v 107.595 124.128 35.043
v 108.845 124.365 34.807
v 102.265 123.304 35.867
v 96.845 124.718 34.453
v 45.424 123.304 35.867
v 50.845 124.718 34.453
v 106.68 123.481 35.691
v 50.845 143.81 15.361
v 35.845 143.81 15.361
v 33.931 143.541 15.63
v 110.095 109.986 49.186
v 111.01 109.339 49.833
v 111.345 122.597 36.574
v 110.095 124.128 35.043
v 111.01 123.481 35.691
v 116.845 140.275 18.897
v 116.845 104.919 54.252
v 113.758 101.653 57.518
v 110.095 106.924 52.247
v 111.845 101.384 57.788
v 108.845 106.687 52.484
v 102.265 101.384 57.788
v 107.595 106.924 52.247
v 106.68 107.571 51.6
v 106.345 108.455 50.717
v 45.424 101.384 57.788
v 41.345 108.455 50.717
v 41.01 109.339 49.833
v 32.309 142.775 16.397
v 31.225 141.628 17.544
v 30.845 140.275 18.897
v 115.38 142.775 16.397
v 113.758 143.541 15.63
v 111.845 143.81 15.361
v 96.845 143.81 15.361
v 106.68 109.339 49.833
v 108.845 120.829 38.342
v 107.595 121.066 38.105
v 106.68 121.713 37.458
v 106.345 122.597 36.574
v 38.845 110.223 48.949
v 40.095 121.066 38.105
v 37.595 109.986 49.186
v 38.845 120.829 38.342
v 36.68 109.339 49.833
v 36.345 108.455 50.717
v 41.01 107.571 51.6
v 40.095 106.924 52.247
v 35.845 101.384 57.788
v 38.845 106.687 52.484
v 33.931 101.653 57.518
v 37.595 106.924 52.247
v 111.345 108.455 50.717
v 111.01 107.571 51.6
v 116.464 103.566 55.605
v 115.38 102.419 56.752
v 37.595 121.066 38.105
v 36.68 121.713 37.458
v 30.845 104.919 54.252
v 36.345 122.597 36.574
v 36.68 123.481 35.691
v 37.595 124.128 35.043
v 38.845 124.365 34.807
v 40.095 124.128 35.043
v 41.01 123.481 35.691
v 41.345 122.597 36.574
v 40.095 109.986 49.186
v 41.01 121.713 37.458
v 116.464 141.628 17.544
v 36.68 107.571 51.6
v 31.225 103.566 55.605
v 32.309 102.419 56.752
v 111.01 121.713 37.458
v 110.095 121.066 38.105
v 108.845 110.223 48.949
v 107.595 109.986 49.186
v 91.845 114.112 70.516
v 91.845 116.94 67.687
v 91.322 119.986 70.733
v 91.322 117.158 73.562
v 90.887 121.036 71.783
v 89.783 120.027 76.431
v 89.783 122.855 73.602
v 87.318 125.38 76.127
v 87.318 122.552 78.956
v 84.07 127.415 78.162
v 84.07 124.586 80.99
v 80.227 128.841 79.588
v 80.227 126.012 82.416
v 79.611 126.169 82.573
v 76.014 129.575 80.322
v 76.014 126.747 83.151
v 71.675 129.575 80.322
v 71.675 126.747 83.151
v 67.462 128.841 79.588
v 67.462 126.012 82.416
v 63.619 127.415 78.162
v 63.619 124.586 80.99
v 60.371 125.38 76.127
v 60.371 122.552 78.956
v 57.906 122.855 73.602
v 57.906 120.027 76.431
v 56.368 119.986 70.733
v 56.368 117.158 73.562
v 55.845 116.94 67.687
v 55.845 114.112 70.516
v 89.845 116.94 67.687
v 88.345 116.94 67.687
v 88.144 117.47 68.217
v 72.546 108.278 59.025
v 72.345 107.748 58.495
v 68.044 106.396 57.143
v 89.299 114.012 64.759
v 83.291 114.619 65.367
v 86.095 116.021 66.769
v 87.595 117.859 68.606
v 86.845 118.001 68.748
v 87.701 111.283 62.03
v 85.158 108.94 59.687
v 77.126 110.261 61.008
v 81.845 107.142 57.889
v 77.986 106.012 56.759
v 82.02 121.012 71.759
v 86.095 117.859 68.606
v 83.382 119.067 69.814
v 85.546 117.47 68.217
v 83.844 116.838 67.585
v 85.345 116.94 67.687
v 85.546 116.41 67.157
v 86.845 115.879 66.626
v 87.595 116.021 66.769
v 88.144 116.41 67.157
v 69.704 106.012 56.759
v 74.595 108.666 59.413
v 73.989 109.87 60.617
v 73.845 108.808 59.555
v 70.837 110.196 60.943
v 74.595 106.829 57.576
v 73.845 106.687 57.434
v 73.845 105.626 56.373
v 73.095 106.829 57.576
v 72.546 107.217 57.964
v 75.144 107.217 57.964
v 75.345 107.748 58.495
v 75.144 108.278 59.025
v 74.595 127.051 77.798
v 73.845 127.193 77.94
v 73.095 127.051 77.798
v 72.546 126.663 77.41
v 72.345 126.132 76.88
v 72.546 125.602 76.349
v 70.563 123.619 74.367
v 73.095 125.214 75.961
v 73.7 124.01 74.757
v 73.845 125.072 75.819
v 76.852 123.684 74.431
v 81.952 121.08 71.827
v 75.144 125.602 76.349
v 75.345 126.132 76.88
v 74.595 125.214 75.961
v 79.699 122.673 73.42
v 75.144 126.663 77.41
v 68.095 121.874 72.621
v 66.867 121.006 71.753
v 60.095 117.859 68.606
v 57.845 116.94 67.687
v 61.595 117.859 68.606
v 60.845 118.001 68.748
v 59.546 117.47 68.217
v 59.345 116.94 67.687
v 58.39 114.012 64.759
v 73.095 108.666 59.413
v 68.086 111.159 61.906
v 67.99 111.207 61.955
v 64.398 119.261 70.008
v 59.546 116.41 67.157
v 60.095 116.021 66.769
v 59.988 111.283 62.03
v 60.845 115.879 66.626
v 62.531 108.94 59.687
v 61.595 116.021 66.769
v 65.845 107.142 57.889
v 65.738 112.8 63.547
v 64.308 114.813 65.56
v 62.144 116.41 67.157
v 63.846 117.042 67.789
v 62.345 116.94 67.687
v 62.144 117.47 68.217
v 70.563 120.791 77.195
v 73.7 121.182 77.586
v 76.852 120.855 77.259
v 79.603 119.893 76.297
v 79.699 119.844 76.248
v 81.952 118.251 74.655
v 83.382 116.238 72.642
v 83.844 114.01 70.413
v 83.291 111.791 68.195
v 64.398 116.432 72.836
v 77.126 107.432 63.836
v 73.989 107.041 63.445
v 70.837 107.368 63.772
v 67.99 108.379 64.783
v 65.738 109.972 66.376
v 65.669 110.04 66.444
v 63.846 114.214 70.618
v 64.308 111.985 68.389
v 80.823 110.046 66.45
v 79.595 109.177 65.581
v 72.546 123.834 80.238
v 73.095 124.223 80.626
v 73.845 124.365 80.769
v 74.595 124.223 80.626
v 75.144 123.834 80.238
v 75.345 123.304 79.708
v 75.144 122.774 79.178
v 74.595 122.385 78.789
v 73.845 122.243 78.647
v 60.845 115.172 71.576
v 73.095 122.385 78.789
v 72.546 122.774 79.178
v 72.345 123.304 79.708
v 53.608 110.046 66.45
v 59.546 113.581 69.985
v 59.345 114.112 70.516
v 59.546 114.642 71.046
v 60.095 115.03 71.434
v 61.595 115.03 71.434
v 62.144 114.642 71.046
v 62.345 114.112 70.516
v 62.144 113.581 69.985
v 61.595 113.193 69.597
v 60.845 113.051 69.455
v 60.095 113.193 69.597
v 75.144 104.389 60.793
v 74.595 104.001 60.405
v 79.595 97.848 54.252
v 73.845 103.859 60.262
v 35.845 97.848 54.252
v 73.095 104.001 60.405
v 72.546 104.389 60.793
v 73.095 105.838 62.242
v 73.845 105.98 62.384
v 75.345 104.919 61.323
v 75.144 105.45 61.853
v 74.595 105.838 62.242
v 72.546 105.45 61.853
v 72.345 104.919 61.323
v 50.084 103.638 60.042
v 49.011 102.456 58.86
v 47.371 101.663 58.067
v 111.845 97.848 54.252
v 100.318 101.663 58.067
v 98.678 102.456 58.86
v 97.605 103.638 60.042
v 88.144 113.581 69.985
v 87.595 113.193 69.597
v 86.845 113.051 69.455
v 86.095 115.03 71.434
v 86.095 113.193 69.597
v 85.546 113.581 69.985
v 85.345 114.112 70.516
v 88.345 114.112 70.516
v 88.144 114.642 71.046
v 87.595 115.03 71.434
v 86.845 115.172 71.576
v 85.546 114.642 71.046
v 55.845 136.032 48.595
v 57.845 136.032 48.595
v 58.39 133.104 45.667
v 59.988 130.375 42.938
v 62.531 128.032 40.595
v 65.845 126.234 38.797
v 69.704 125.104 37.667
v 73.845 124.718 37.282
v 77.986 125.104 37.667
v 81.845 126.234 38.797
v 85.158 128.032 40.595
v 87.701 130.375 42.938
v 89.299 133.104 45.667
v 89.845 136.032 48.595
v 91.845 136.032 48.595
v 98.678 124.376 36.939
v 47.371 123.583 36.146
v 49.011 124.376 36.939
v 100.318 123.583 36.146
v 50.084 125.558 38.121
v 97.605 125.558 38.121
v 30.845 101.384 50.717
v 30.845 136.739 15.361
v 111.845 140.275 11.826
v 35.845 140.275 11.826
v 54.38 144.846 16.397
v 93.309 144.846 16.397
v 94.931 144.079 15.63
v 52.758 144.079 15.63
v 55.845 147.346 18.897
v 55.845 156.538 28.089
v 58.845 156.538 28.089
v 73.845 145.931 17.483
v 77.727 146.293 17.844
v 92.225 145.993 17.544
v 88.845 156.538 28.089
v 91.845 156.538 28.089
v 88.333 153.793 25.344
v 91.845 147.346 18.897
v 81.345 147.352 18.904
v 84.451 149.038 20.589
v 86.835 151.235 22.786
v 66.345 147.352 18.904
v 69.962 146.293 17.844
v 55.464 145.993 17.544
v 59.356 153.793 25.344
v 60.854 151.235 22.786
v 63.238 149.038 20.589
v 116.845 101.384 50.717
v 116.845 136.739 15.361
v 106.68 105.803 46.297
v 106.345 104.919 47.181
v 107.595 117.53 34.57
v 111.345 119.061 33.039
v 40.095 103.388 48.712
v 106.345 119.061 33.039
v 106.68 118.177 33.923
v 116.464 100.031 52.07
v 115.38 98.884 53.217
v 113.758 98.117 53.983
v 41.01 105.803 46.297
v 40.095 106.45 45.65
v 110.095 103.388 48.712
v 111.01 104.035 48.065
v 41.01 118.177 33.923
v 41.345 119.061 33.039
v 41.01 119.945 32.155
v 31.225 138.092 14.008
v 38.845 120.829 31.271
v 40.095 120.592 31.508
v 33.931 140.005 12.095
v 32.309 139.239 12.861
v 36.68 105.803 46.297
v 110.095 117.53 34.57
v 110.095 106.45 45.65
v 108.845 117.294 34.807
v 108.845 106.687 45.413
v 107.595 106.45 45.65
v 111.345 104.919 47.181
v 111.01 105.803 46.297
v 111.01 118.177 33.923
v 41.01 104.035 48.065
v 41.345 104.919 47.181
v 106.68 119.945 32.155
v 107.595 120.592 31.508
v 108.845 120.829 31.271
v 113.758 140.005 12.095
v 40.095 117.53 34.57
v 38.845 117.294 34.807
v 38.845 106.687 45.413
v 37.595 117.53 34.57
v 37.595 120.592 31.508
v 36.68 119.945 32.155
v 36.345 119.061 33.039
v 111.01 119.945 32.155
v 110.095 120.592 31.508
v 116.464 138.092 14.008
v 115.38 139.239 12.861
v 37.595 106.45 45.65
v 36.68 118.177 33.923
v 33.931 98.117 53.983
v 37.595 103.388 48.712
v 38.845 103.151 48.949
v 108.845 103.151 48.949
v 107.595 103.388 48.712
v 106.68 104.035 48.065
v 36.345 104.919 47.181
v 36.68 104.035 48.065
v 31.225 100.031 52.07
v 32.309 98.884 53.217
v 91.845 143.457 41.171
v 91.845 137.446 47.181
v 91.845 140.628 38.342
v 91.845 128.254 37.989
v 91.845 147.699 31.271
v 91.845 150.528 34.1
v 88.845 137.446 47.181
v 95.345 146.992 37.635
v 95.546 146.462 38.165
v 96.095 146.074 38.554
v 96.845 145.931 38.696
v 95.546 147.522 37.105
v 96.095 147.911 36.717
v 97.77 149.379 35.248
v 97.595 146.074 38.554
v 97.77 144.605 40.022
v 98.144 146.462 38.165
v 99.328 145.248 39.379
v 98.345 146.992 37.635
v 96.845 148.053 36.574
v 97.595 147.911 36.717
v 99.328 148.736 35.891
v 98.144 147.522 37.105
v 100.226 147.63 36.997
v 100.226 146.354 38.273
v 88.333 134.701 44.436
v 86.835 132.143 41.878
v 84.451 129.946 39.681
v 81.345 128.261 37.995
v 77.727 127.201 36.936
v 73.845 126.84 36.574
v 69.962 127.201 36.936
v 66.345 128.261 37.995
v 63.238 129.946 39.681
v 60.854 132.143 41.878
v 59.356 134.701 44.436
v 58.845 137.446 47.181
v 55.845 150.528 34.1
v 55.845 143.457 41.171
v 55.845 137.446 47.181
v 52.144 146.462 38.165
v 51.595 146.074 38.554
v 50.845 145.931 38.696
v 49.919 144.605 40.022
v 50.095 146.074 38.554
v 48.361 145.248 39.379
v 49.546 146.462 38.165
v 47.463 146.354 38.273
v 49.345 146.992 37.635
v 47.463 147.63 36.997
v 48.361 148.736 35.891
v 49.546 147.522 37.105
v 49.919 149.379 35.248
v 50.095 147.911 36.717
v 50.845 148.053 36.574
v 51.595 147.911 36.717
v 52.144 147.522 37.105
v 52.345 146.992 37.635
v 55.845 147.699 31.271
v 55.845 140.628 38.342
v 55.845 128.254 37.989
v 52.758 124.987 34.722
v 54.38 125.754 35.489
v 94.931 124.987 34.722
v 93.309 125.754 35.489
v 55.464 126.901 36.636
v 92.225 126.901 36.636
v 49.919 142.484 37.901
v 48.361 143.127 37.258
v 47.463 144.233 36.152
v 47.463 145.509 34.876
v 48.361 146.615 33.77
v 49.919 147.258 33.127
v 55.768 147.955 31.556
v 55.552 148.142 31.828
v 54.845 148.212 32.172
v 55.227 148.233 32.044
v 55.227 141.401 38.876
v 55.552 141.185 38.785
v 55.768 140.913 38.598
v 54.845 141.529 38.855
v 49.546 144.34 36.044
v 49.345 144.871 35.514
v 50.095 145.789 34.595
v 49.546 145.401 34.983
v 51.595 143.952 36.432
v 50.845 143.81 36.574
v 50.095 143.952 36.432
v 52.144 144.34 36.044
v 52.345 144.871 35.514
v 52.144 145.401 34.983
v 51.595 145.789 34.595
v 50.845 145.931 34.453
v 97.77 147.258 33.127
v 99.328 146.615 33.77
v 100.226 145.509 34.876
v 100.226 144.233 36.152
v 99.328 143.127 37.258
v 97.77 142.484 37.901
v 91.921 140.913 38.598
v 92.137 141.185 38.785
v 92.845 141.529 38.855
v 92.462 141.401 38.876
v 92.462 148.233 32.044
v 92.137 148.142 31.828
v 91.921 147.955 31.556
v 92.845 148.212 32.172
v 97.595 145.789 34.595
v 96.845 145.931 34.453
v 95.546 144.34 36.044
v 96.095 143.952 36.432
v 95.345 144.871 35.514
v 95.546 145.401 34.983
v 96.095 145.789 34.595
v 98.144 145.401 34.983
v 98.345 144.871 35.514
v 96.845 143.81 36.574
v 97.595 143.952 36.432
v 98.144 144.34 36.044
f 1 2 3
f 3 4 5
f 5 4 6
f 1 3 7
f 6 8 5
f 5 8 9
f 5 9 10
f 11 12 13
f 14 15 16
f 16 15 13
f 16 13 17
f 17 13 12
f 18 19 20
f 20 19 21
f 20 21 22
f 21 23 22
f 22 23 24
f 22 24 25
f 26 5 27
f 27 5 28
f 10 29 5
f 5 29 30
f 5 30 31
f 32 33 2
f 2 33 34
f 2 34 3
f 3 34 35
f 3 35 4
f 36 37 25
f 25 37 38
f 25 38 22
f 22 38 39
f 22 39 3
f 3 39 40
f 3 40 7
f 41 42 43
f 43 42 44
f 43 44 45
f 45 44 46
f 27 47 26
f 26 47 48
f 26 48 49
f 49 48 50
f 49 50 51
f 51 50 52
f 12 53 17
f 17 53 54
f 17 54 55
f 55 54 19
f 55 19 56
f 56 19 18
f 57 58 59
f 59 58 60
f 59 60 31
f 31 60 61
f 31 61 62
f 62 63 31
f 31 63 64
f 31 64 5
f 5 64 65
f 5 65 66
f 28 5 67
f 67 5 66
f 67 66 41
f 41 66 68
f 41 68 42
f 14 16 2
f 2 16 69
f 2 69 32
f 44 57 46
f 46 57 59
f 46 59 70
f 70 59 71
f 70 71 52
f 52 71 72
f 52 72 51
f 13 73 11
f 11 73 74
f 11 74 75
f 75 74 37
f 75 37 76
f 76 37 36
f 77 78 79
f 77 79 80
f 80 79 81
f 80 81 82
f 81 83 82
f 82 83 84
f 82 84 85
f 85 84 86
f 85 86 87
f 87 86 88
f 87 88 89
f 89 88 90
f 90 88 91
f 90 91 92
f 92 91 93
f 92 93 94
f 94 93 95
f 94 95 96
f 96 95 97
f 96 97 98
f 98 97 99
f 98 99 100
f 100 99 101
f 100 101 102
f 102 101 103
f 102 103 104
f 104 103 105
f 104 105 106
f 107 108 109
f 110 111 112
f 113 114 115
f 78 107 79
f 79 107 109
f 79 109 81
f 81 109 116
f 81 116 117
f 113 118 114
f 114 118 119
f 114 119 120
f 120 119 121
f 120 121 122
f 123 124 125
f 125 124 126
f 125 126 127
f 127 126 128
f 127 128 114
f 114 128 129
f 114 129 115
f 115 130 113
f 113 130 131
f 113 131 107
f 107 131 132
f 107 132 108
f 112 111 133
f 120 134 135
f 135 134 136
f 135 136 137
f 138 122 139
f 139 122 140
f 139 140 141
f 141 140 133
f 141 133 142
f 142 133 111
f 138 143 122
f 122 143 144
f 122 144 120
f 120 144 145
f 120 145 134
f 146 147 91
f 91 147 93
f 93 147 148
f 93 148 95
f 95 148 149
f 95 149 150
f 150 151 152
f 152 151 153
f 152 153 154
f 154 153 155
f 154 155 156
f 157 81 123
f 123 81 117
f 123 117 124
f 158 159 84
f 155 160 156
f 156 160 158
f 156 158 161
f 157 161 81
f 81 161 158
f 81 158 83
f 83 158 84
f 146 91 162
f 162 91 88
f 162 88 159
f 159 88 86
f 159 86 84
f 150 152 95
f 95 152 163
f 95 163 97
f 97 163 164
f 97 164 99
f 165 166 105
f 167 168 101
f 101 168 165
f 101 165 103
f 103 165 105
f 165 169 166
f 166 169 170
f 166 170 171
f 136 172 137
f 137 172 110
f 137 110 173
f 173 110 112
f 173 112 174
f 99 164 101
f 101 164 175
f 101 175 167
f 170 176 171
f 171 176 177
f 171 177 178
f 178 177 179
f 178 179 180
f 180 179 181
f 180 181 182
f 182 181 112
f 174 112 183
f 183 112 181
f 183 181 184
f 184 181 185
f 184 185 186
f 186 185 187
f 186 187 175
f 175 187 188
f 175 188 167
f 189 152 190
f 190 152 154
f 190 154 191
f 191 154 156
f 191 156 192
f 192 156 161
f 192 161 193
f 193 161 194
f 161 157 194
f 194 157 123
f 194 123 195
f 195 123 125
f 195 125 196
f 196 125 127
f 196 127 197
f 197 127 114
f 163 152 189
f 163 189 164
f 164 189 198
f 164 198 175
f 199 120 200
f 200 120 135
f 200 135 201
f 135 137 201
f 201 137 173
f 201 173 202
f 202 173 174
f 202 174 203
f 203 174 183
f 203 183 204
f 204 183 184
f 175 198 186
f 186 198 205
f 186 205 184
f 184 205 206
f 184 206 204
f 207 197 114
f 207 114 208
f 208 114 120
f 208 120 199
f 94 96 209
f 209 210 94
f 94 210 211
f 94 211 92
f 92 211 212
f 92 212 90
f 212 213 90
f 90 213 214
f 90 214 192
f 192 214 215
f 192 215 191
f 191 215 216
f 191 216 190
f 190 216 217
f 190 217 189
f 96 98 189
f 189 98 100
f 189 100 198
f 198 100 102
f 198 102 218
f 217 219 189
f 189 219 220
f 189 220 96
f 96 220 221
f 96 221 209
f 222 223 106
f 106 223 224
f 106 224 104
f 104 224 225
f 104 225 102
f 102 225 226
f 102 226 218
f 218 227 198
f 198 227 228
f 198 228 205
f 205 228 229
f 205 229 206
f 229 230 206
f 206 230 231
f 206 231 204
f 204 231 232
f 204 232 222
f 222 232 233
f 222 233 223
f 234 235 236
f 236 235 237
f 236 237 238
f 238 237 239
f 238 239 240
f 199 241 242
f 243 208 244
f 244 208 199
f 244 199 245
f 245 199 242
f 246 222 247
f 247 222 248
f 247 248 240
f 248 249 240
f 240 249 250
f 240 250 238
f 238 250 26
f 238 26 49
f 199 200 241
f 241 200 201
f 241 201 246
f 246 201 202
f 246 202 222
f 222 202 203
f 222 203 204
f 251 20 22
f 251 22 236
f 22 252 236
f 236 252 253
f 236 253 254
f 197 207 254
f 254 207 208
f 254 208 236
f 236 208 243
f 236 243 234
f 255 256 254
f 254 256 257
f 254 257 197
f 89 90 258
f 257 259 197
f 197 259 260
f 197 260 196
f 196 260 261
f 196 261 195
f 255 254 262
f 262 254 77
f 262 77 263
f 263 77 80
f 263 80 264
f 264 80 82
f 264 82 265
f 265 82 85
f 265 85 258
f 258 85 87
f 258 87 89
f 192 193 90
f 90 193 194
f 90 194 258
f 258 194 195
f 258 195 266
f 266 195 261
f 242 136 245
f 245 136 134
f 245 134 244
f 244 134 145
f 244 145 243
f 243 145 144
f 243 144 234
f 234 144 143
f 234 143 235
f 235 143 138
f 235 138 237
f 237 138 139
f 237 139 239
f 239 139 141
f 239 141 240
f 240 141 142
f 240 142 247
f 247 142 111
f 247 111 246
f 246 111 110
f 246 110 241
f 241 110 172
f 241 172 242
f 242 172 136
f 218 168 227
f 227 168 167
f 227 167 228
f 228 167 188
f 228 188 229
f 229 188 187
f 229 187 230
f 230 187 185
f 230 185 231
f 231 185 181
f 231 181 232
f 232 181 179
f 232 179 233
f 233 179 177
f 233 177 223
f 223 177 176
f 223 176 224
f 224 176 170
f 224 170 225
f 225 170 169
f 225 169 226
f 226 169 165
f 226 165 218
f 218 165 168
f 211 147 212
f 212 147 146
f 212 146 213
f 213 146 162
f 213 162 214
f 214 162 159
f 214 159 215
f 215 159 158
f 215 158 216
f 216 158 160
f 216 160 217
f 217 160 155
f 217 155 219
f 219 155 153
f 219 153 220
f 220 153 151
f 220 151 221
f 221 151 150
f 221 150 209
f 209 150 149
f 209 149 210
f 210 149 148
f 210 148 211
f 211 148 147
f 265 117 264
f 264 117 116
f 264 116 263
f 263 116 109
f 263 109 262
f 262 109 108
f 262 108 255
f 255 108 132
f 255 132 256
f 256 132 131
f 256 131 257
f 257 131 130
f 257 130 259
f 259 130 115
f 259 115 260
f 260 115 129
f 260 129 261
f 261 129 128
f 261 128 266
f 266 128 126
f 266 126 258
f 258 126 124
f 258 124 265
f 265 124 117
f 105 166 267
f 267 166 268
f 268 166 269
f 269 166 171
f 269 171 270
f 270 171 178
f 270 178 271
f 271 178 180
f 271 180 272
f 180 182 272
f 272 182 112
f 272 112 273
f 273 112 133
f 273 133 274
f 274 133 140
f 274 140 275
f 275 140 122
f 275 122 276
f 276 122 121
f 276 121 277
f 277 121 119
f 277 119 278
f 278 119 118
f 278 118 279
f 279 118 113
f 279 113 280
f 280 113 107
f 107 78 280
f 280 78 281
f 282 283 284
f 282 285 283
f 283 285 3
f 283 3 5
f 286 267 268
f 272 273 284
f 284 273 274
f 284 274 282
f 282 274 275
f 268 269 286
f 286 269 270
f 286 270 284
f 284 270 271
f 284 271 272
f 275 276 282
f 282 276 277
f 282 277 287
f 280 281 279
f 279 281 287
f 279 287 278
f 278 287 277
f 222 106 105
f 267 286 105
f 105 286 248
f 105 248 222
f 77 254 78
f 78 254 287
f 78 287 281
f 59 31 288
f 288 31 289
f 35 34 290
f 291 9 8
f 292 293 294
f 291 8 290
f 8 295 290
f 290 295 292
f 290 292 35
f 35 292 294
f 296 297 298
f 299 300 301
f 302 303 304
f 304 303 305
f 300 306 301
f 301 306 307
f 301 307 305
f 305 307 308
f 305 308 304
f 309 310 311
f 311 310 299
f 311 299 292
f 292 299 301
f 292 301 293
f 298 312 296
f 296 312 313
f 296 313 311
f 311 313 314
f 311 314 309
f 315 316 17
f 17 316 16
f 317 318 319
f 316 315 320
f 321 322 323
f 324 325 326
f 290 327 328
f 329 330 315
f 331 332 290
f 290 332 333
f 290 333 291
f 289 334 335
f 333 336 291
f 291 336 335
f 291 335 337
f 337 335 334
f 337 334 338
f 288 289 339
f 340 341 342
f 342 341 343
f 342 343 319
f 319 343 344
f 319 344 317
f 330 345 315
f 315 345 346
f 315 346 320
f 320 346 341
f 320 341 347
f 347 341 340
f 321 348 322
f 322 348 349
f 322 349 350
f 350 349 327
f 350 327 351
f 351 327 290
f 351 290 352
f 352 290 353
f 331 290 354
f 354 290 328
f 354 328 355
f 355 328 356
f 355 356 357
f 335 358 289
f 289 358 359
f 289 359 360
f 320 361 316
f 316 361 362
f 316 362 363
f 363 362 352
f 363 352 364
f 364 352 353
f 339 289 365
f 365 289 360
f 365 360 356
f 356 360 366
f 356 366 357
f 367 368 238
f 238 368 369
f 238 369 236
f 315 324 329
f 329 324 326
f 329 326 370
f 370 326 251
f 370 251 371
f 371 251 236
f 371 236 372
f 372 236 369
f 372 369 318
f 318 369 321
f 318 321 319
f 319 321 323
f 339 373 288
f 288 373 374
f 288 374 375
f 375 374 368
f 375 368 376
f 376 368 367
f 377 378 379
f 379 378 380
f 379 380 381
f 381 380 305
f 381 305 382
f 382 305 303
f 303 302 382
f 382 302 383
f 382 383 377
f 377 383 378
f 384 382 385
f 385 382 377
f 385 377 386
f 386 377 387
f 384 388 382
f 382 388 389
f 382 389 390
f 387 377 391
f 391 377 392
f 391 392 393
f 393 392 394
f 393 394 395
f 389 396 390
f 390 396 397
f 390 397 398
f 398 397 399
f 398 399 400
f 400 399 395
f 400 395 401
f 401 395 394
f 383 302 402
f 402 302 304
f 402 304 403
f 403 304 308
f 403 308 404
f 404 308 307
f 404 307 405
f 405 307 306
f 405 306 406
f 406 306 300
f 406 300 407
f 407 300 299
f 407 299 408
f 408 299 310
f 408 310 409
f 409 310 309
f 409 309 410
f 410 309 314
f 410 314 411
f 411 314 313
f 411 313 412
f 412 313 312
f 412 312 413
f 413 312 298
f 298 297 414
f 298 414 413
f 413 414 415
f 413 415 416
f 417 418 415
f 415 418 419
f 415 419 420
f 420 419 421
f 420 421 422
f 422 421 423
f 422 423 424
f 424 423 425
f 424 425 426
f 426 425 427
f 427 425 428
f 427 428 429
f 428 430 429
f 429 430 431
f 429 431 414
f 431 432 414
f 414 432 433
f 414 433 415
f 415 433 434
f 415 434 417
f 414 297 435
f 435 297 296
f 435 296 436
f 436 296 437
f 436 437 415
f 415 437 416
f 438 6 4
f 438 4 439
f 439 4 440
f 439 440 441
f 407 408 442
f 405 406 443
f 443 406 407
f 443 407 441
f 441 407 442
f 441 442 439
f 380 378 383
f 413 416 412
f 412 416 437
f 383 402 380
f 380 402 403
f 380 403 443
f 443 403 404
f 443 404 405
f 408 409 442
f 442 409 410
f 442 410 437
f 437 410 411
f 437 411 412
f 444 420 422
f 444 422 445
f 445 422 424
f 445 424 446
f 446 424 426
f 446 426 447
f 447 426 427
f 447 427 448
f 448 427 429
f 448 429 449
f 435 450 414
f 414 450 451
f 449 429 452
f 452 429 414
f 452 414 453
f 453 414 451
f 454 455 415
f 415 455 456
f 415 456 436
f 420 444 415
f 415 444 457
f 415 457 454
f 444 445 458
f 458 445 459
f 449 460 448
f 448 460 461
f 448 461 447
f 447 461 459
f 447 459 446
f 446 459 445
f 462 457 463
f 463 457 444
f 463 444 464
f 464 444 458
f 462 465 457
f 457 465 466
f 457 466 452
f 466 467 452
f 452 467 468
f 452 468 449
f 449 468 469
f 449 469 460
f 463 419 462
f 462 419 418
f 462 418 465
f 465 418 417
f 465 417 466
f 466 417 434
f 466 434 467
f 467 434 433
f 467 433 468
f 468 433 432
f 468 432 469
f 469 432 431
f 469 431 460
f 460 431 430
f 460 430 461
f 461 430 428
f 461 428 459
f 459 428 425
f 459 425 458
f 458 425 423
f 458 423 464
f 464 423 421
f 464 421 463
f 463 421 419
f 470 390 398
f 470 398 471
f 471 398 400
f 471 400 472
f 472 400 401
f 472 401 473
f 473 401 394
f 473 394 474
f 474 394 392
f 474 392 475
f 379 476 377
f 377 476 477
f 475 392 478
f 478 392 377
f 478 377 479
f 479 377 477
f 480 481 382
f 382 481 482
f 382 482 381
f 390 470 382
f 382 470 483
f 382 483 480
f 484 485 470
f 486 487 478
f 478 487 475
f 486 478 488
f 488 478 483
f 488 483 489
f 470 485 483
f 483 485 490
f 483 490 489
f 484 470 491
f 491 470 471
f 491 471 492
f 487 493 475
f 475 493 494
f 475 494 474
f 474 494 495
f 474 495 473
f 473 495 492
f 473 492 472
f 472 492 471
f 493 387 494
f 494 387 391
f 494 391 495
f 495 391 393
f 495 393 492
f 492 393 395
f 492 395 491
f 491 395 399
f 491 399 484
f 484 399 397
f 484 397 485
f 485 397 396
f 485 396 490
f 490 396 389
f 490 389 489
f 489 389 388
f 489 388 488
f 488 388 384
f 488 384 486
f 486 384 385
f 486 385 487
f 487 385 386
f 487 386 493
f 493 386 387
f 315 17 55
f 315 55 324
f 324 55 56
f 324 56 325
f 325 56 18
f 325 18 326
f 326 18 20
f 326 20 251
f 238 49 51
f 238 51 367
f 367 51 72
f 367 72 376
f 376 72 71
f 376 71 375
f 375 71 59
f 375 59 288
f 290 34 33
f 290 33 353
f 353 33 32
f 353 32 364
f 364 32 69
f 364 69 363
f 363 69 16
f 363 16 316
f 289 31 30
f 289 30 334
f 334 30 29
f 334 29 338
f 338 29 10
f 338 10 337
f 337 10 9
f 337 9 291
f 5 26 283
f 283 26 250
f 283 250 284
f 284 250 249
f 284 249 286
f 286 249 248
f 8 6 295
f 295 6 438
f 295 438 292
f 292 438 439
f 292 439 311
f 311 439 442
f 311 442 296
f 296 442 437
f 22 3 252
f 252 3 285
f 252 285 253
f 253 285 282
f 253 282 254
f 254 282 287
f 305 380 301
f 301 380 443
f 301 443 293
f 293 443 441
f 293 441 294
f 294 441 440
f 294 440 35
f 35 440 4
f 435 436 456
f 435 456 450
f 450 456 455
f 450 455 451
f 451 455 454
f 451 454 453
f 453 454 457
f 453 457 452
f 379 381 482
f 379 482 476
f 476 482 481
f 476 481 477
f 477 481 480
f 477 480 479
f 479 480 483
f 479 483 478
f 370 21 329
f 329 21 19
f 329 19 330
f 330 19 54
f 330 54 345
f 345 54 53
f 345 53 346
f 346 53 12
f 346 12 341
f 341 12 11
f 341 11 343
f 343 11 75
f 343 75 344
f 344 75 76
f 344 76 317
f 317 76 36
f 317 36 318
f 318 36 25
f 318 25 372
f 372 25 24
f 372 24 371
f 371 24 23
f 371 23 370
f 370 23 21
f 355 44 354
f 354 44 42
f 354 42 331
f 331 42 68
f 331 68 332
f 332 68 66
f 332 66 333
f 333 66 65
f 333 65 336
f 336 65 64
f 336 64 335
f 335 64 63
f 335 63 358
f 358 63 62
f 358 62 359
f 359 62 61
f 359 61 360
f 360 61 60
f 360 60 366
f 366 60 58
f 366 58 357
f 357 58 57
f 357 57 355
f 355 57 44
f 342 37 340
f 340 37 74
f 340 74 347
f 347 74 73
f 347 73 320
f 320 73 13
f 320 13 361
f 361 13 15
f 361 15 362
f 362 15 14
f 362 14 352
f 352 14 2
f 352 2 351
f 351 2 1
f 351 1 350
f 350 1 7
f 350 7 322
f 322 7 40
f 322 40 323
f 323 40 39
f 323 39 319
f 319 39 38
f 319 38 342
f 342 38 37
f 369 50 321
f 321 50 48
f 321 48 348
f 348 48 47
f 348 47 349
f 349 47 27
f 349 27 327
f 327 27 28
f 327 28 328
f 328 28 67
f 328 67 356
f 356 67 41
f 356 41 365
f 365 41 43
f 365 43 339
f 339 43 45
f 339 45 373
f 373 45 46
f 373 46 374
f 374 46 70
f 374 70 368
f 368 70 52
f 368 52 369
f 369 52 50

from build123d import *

# Parameters (mm, degrees)
SKETCH1_R           = 18
BOSS_EXTRUDE1_DEPTH = 4
CUT_EXTRUDE1_REACH  = 178.366
SKETCH2_R           = 1.5
BOSS_EXTRUDE2_START = 27
BOSS_EXTRUDE2_DEPTH = 27
SKETCH4_W           = 86
SKETCH4_H           = 60
BOSS_EXTRUDE5_DEPTH = 5
BOSS_EXTRUDE6_START = -31
BOSS_EXTRUDE6_DEPTH = 31
BOSS_EXTRUDE7_DEPTH = 27
SKETCH9_R           = 1.5
BOSS_EXTRUDE8_DEPTH = 3
FILLET2_R           = 5
FILLET3_R           = 1
CUT_EXTRUDE2_REACH  = 157.453
SKETCH10_R          = 2.5


with BuildPart() as part:
    # Sketch1 → Boss-Extrude1 (new body)
    with BuildSketch(Plane(origin=(0, 24.62645802, -24.62645802), x_dir=(1, 0, 0), z_dir=(2.4702462297909737e-15, -0.70710678118655, 0.707106781186545))):
        with Locations(Location((73.844609768, 130.551114539, 0), (0, 0, 90))):
            Circle(SKETCH1_R)
        with BuildLine():
            Line((83.2907778, 127.269360509), (77.126363797, 121.104946506))
            ThreePointArc((77.126363797, 121.104946506), (66.773541956, 123.480046727), (64.398441736, 133.832868568))
            Line((64.398441736, 133.832868568), (70.562855738, 139.997282571))
            ThreePointArc((70.562855738, 139.997282571), (80.91567758, 137.62218235), (83.2907778, 127.269360509))
        make_face(mode=Mode.SUBTRACT)
    extrude(amount=BOSS_EXTRUDE1_DEPTH)

    # Sketch2 → Cut-Extrude1 (cut, up to next)
    with BuildSketch(Plane(origin=(0, 24.62645802, -24.62645802), x_dir=(1, 0, 0), z_dir=(-2.4702462297909737e-15, 0.70710678118655, -0.707106781186545)), mode=Mode.PRIVATE) as cut_extrude1_sk1:
        with Locations(Location((86.844609768, -130.551114539, 0), (0, 0, 270))):
            Circle(SKETCH2_R)
    cut_extrude1_tool1 = extrude(cut_extrude1_sk1.sketch, amount=-CUT_EXTRUDE1_REACH, mode=Mode.PRIVATE) & part.part
    # Sketch2 → Cut-Extrude1 (cut, up to next)
    with BuildSketch(Plane(origin=(0, 24.62645802, -24.62645802), x_dir=(1, 0, 0), z_dir=(-2.4702462297909737e-15, 0.70710678118655, -0.707106781186545)), mode=Mode.PRIVATE) as cut_extrude1_sk2:
        with Locations(Location((73.844609768, -143.551114539, 0), (0, 0, 270))):
            Circle(SKETCH2_R)
    cut_extrude1_tool2 = extrude(cut_extrude1_sk2.sketch, amount=-CUT_EXTRUDE1_REACH, mode=Mode.PRIVATE) & part.part
    # Sketch2 → Cut-Extrude1 (cut, up to next)
    with BuildSketch(Plane(origin=(0, 24.62645802, -24.62645802), x_dir=(1, 0, 0), z_dir=(-2.4702462297909737e-15, 0.70710678118655, -0.707106781186545)), mode=Mode.PRIVATE) as cut_extrude1_sk3:
        with Locations(Location((60.844609768, -130.551114539, 0), (0, 0, 270))):
            Circle(SKETCH2_R)
    cut_extrude1_tool3 = extrude(cut_extrude1_sk3.sketch, amount=-CUT_EXTRUDE1_REACH, mode=Mode.PRIVATE) & part.part
    # Sketch2 → Cut-Extrude1 (cut, up to next)
    with BuildSketch(Plane(origin=(0, 24.62645802, -24.62645802), x_dir=(1, 0, 0), z_dir=(-2.4702462297909737e-15, 0.70710678118655, -0.707106781186545)), mode=Mode.PRIVATE) as cut_extrude1_sk4:
        with Locations(Location((73.844609768, -117.551114539, 0), (0, 0, 270))):
            Circle(SKETCH2_R)
    cut_extrude1_tool4 = extrude(cut_extrude1_sk4.sketch, amount=-CUT_EXTRUDE1_REACH, mode=Mode.PRIVATE) & part.part
    add(cut_extrude1_tool1.solids().sort_by_distance((86.84461, 116.940036, 67.68712))[0], mode=Mode.SUBTRACT)
    add(cut_extrude1_tool2.solids().sort_by_distance((73.84461, 126.132425, 76.879509))[0], mode=Mode.SUBTRACT)
    add(cut_extrude1_tool3.solids().sort_by_distance((60.84461, 116.940036, 67.68712))[0], mode=Mode.SUBTRACT)
    add(cut_extrude1_tool4.solids().sort_by_distance((73.84461, 107.747648, 58.494732))[0], mode=Mode.SUBTRACT)

    # Sketch3 → Boss-Extrude2 (add)
    with BuildSketch(Plane(origin=(0, 24.62645802, -24.62645802), x_dir=(1, 0, 0), z_dir=(-2.4702462297909737e-15, 0.70710678118655, -0.707106781186545)).offset(BOSS_EXTRUDE2_START)):
        with BuildLine():
            Line((91.844609768, -130.551114539), (89.844609768, -130.551114539))
            ThreePointArc((89.844609768, -130.551114539), (73.844609768, -114.551114539), (57.844609768, -130.551114539))
            Line((57.844609768, -130.551114539), (55.844609768, -130.551114539))
            ThreePointArc((55.844609768, -130.551114539), (73.844609768, -112.551114539), (91.844609768, -130.551114539))
        make_face()
    extrude(amount=-BOSS_EXTRUDE2_DEPTH)



with BuildPart() as body_2:
    # Sketch4 → Boss-Extrude5 (new body)
    with BuildSketch(Plane(origin=(0, 79.58565632, 79.58565632), x_dir=(-1, 0, 0), z_dir=(0, -0.7071067811865451, -0.70710678118655))):
        with Locations((-73.844609768, 60.827070924)):
            Rectangle(SKETCH4_W, SKETCH4_H)
    extrude(amount=BOSS_EXTRUDE5_DEPTH)


with BuildPart() as part_1:
    add(part.part)

    add(body_2.part)  # Boss-Extrude6 merges body 2
    # Sketch6 → Boss-Extrude6 (add)
    with BuildSketch(Plane(origin=(0, 21.798030895, -21.798030895), x_dir=(1, 0, 0), z_dir=(2.4702462297909737e-15, -0.70710678118655, 0.707106781186545)).offset(BOSS_EXTRUDE6_START)):
        with BuildLine():
            ThreePointArc((73.844609768, 112.551114539), (61.116687706, 117.823192477), (55.844609768, 130.551114539))
            Line((55.844609768, 130.551114539), (48.844609768, 112.551114539))
            Line((48.844609768, 112.551114539), (73.844609768, 112.551114539))
        make_face()
        with BuildLine():
            Line((57.844609768, 130.551114539), (55.844609768, 130.551114539))
            ThreePointArc((55.844609768, 130.551114539), (61.116687706, 117.823192477), (73.844609768, 112.551114539))
            ThreePointArc((73.844609768, 112.551114539), (86.572531829, 117.823192477), (91.844609768, 130.551114539))
            Line((91.844609768, 130.551114539), (89.844609768, 130.551114539))
            ThreePointArc((89.844609768, 130.551114539), (73.844609768, 114.551114539), (57.844609768, 130.551114539))
        make_face()
        with BuildLine():
            ThreePointArc((91.844609768, 130.551114539), (86.572531829, 117.823192477), (73.844609768, 112.551114539))
            Line((73.844609768, 112.551114539), (98.844609768, 112.551114539))
            Line((98.844609768, 112.551114539), (91.844609768, 130.551114539))
        make_face()
    extrude(amount=BOSS_EXTRUDE6_DEPTH)

    # Sketch8 → Boss-Extrude7 (add)
    with BuildSketch(Plane(origin=(0, 64.224437766, -64.224437766), x_dir=(1, 0, 0), z_dir=(0, 0.7071067811865498, -0.7071067811865452))):
        with BuildLine():
            Line((91.844609768, -130.551114539), (88.844609768, -130.551114539))
            ThreePointArc((88.844609768, -130.551114539), (73.844609768, -115.551114539), (58.844609768, -130.551114539))
            Line((58.844609768, -130.551114539), (55.844609768, -130.551114539))
            Line((55.844609768, -130.551114539), (55.844609768, -112.551114539))
            Line((55.844609768, -112.551114539), (91.844609768, -112.551114539))
            Line((91.844609768, -112.551114539), (91.844609768, -130.551114539))
        make_face()
    extrude(amount=-BOSS_EXTRUDE7_DEPTH)

    # Sketch9 → Boss-Extrude8 (add)
    # profile 1 of 2: a face of its own
    with BuildSketch(Plane(origin=(0, 92.313578382, 92.313578382), x_dir=(1, 0, 0), z_dir=(-6.542051911181989e-15, 0.7071067811865454, 0.7071067811865497))):
        with BuildLine():
            Line((55.844609768, 72.327070924), (49.919173765, 73.951634922))
            ThreePointArc((49.919173765, 73.951634922), (47.344609768, 77.327070924), (49.919173765, 80.702506927))
            Line((49.919173765, 80.702506927), (55.844609768, 82.327070924))
            Line((55.844609768, 82.327070924), (55.844609768, 72.327070924))
        make_face()
        with Locations(Location((50.844609768, 77.327070924, 0), (0, 0, 270))):
            Circle(SKETCH9_R, mode=Mode.SUBTRACT)
    # profile 2 of 2: a face of its own
    with BuildSketch(Plane(origin=(0, 92.313578382, 92.313578382), x_dir=(1, 0, 0), z_dir=(-6.542051911181989e-15, 0.7071067811865454, 0.7071067811865497))):
        with BuildLine():
            Line((97.77004577, 80.702506927), (91.844609768, 82.327070924))
            Line((91.844609768, 82.327070924), (91.844609768, 72.327070924))
            Line((91.844609768, 72.327070924), (97.77004577, 73.951634922))
            ThreePointArc((97.77004577, 73.951634922), (100.344609768, 77.327070924), (97.77004577, 80.702506927))
        make_face()
        with Locations(Location((96.844609768, 77.327070924, 0), (0, 0, 270))):
            Circle(SKETCH9_R, mode=Mode.SUBTRACT)
    extrude(amount=-BOSS_EXTRUDE8_DEPTH)

    # Fillet2
    fillet2_edges = [part_1.edges().sort_by_distance(p)[0] for p in [
        (98.844609768, 112.343842324, 46.827470317),
        (48.844609768, 112.343842324, 46.827470317),
        (30.844609768, 99.615920262, 56.019858473),
        (30.844609768, 142.042327133, 13.593451601),
        (116.844609768, 142.042327133, 13.593451601),
        (116.844609768, 99.615920262, 56.019858473),
        (91.844609768, 134.26415254, 24.9071601),
        (55.844609768, 134.26415254, 24.9071601),
    ]]
    fillet(fillet2_edges, radius=FILLET2_R)

    # Fillet3
    fillet3_edges = [part_1.edges().sort_by_distance(p)[0] for p in [
        (55.844609768, 144.870754258, 35.513761818),
        (91.844609768, 144.870754258, 35.513761818),
    ]]
    fillet(fillet3_edges, radius=FILLET3_R)

    # Sketch10 → Cut-Extrude2 (cut, up to next)
    with BuildSketch(Plane(origin=(0, 79.58565632, 79.58565632), x_dir=(1, 0, 0), z_dir=(0, 0.7071067811865451, 0.70710678118655)), mode=Mode.PRIVATE) as cut_extrude2_sk1:
        with Locations(Location((108.844609768, 40.827070924, 0), (0, 0, 270))):
            Circle(SKETCH10_R)
    cut_extrude2_tool1 = extrude(cut_extrude2_sk1.sketch, amount=-CUT_EXTRUDE2_REACH, mode=Mode.PRIVATE) & part_1.part
    # Sketch10 → Cut-Extrude2 (cut, up to next)
    with BuildSketch(Plane(origin=(0, 79.58565632, 79.58565632), x_dir=(1, 0, 0), z_dir=(0, 0.7071067811865451, 0.70710678118655)), mode=Mode.PRIVATE) as cut_extrude2_sk2:
        with Locations(Location((38.844609768, 40.827070924, 0), (0, 0, 270))):
            Circle(SKETCH10_R)
    cut_extrude2_tool2 = extrude(cut_extrude2_sk2.sketch, amount=-CUT_EXTRUDE2_REACH, mode=Mode.PRIVATE) & part_1.part
    # Sketch10 → Cut-Extrude2 (cut, up to next)
    with BuildSketch(Plane(origin=(0, 79.58565632, 79.58565632), x_dir=(1, 0, 0), z_dir=(0, 0.7071067811865451, 0.70710678118655)), mode=Mode.PRIVATE) as cut_extrude2_sk3:
        with Locations(Location((108.844609768, 60.827070924, 0), (0, 0, 270))):
            Circle(SKETCH10_R)
    cut_extrude2_tool3 = extrude(cut_extrude2_sk3.sketch, amount=-CUT_EXTRUDE2_REACH, mode=Mode.PRIVATE) & part_1.part
    # Sketch10 → Cut-Extrude2 (cut, up to next)
    with BuildSketch(Plane(origin=(0, 79.58565632, 79.58565632), x_dir=(1, 0, 0), z_dir=(0, 0.7071067811865451, 0.70710678118655)), mode=Mode.PRIVATE) as cut_extrude2_sk4:
        with Locations(Location((38.844609768, 60.827070924, 0), (0, 0, 270))):
            Circle(SKETCH10_R)
    cut_extrude2_tool4 = extrude(cut_extrude2_sk4.sketch, amount=-CUT_EXTRUDE2_REACH, mode=Mode.PRIVATE) & part_1.part
    add(cut_extrude2_tool1.solids().sort_by_distance((108.84461, 108.454755, 50.716558))[0], mode=Mode.SUBTRACT)
    add(cut_extrude2_tool2.solids().sort_by_distance((38.84461, 108.454755, 50.716558))[0], mode=Mode.SUBTRACT)
    add(cut_extrude2_tool3.solids().sort_by_distance((108.84461, 122.596891, 36.574422))[0], mode=Mode.SUBTRACT)
    add(cut_extrude2_tool4.solids().sort_by_distance((38.84461, 122.596891, 36.574422))[0], mode=Mode.SUBTRACT)


solid = part_1.part
